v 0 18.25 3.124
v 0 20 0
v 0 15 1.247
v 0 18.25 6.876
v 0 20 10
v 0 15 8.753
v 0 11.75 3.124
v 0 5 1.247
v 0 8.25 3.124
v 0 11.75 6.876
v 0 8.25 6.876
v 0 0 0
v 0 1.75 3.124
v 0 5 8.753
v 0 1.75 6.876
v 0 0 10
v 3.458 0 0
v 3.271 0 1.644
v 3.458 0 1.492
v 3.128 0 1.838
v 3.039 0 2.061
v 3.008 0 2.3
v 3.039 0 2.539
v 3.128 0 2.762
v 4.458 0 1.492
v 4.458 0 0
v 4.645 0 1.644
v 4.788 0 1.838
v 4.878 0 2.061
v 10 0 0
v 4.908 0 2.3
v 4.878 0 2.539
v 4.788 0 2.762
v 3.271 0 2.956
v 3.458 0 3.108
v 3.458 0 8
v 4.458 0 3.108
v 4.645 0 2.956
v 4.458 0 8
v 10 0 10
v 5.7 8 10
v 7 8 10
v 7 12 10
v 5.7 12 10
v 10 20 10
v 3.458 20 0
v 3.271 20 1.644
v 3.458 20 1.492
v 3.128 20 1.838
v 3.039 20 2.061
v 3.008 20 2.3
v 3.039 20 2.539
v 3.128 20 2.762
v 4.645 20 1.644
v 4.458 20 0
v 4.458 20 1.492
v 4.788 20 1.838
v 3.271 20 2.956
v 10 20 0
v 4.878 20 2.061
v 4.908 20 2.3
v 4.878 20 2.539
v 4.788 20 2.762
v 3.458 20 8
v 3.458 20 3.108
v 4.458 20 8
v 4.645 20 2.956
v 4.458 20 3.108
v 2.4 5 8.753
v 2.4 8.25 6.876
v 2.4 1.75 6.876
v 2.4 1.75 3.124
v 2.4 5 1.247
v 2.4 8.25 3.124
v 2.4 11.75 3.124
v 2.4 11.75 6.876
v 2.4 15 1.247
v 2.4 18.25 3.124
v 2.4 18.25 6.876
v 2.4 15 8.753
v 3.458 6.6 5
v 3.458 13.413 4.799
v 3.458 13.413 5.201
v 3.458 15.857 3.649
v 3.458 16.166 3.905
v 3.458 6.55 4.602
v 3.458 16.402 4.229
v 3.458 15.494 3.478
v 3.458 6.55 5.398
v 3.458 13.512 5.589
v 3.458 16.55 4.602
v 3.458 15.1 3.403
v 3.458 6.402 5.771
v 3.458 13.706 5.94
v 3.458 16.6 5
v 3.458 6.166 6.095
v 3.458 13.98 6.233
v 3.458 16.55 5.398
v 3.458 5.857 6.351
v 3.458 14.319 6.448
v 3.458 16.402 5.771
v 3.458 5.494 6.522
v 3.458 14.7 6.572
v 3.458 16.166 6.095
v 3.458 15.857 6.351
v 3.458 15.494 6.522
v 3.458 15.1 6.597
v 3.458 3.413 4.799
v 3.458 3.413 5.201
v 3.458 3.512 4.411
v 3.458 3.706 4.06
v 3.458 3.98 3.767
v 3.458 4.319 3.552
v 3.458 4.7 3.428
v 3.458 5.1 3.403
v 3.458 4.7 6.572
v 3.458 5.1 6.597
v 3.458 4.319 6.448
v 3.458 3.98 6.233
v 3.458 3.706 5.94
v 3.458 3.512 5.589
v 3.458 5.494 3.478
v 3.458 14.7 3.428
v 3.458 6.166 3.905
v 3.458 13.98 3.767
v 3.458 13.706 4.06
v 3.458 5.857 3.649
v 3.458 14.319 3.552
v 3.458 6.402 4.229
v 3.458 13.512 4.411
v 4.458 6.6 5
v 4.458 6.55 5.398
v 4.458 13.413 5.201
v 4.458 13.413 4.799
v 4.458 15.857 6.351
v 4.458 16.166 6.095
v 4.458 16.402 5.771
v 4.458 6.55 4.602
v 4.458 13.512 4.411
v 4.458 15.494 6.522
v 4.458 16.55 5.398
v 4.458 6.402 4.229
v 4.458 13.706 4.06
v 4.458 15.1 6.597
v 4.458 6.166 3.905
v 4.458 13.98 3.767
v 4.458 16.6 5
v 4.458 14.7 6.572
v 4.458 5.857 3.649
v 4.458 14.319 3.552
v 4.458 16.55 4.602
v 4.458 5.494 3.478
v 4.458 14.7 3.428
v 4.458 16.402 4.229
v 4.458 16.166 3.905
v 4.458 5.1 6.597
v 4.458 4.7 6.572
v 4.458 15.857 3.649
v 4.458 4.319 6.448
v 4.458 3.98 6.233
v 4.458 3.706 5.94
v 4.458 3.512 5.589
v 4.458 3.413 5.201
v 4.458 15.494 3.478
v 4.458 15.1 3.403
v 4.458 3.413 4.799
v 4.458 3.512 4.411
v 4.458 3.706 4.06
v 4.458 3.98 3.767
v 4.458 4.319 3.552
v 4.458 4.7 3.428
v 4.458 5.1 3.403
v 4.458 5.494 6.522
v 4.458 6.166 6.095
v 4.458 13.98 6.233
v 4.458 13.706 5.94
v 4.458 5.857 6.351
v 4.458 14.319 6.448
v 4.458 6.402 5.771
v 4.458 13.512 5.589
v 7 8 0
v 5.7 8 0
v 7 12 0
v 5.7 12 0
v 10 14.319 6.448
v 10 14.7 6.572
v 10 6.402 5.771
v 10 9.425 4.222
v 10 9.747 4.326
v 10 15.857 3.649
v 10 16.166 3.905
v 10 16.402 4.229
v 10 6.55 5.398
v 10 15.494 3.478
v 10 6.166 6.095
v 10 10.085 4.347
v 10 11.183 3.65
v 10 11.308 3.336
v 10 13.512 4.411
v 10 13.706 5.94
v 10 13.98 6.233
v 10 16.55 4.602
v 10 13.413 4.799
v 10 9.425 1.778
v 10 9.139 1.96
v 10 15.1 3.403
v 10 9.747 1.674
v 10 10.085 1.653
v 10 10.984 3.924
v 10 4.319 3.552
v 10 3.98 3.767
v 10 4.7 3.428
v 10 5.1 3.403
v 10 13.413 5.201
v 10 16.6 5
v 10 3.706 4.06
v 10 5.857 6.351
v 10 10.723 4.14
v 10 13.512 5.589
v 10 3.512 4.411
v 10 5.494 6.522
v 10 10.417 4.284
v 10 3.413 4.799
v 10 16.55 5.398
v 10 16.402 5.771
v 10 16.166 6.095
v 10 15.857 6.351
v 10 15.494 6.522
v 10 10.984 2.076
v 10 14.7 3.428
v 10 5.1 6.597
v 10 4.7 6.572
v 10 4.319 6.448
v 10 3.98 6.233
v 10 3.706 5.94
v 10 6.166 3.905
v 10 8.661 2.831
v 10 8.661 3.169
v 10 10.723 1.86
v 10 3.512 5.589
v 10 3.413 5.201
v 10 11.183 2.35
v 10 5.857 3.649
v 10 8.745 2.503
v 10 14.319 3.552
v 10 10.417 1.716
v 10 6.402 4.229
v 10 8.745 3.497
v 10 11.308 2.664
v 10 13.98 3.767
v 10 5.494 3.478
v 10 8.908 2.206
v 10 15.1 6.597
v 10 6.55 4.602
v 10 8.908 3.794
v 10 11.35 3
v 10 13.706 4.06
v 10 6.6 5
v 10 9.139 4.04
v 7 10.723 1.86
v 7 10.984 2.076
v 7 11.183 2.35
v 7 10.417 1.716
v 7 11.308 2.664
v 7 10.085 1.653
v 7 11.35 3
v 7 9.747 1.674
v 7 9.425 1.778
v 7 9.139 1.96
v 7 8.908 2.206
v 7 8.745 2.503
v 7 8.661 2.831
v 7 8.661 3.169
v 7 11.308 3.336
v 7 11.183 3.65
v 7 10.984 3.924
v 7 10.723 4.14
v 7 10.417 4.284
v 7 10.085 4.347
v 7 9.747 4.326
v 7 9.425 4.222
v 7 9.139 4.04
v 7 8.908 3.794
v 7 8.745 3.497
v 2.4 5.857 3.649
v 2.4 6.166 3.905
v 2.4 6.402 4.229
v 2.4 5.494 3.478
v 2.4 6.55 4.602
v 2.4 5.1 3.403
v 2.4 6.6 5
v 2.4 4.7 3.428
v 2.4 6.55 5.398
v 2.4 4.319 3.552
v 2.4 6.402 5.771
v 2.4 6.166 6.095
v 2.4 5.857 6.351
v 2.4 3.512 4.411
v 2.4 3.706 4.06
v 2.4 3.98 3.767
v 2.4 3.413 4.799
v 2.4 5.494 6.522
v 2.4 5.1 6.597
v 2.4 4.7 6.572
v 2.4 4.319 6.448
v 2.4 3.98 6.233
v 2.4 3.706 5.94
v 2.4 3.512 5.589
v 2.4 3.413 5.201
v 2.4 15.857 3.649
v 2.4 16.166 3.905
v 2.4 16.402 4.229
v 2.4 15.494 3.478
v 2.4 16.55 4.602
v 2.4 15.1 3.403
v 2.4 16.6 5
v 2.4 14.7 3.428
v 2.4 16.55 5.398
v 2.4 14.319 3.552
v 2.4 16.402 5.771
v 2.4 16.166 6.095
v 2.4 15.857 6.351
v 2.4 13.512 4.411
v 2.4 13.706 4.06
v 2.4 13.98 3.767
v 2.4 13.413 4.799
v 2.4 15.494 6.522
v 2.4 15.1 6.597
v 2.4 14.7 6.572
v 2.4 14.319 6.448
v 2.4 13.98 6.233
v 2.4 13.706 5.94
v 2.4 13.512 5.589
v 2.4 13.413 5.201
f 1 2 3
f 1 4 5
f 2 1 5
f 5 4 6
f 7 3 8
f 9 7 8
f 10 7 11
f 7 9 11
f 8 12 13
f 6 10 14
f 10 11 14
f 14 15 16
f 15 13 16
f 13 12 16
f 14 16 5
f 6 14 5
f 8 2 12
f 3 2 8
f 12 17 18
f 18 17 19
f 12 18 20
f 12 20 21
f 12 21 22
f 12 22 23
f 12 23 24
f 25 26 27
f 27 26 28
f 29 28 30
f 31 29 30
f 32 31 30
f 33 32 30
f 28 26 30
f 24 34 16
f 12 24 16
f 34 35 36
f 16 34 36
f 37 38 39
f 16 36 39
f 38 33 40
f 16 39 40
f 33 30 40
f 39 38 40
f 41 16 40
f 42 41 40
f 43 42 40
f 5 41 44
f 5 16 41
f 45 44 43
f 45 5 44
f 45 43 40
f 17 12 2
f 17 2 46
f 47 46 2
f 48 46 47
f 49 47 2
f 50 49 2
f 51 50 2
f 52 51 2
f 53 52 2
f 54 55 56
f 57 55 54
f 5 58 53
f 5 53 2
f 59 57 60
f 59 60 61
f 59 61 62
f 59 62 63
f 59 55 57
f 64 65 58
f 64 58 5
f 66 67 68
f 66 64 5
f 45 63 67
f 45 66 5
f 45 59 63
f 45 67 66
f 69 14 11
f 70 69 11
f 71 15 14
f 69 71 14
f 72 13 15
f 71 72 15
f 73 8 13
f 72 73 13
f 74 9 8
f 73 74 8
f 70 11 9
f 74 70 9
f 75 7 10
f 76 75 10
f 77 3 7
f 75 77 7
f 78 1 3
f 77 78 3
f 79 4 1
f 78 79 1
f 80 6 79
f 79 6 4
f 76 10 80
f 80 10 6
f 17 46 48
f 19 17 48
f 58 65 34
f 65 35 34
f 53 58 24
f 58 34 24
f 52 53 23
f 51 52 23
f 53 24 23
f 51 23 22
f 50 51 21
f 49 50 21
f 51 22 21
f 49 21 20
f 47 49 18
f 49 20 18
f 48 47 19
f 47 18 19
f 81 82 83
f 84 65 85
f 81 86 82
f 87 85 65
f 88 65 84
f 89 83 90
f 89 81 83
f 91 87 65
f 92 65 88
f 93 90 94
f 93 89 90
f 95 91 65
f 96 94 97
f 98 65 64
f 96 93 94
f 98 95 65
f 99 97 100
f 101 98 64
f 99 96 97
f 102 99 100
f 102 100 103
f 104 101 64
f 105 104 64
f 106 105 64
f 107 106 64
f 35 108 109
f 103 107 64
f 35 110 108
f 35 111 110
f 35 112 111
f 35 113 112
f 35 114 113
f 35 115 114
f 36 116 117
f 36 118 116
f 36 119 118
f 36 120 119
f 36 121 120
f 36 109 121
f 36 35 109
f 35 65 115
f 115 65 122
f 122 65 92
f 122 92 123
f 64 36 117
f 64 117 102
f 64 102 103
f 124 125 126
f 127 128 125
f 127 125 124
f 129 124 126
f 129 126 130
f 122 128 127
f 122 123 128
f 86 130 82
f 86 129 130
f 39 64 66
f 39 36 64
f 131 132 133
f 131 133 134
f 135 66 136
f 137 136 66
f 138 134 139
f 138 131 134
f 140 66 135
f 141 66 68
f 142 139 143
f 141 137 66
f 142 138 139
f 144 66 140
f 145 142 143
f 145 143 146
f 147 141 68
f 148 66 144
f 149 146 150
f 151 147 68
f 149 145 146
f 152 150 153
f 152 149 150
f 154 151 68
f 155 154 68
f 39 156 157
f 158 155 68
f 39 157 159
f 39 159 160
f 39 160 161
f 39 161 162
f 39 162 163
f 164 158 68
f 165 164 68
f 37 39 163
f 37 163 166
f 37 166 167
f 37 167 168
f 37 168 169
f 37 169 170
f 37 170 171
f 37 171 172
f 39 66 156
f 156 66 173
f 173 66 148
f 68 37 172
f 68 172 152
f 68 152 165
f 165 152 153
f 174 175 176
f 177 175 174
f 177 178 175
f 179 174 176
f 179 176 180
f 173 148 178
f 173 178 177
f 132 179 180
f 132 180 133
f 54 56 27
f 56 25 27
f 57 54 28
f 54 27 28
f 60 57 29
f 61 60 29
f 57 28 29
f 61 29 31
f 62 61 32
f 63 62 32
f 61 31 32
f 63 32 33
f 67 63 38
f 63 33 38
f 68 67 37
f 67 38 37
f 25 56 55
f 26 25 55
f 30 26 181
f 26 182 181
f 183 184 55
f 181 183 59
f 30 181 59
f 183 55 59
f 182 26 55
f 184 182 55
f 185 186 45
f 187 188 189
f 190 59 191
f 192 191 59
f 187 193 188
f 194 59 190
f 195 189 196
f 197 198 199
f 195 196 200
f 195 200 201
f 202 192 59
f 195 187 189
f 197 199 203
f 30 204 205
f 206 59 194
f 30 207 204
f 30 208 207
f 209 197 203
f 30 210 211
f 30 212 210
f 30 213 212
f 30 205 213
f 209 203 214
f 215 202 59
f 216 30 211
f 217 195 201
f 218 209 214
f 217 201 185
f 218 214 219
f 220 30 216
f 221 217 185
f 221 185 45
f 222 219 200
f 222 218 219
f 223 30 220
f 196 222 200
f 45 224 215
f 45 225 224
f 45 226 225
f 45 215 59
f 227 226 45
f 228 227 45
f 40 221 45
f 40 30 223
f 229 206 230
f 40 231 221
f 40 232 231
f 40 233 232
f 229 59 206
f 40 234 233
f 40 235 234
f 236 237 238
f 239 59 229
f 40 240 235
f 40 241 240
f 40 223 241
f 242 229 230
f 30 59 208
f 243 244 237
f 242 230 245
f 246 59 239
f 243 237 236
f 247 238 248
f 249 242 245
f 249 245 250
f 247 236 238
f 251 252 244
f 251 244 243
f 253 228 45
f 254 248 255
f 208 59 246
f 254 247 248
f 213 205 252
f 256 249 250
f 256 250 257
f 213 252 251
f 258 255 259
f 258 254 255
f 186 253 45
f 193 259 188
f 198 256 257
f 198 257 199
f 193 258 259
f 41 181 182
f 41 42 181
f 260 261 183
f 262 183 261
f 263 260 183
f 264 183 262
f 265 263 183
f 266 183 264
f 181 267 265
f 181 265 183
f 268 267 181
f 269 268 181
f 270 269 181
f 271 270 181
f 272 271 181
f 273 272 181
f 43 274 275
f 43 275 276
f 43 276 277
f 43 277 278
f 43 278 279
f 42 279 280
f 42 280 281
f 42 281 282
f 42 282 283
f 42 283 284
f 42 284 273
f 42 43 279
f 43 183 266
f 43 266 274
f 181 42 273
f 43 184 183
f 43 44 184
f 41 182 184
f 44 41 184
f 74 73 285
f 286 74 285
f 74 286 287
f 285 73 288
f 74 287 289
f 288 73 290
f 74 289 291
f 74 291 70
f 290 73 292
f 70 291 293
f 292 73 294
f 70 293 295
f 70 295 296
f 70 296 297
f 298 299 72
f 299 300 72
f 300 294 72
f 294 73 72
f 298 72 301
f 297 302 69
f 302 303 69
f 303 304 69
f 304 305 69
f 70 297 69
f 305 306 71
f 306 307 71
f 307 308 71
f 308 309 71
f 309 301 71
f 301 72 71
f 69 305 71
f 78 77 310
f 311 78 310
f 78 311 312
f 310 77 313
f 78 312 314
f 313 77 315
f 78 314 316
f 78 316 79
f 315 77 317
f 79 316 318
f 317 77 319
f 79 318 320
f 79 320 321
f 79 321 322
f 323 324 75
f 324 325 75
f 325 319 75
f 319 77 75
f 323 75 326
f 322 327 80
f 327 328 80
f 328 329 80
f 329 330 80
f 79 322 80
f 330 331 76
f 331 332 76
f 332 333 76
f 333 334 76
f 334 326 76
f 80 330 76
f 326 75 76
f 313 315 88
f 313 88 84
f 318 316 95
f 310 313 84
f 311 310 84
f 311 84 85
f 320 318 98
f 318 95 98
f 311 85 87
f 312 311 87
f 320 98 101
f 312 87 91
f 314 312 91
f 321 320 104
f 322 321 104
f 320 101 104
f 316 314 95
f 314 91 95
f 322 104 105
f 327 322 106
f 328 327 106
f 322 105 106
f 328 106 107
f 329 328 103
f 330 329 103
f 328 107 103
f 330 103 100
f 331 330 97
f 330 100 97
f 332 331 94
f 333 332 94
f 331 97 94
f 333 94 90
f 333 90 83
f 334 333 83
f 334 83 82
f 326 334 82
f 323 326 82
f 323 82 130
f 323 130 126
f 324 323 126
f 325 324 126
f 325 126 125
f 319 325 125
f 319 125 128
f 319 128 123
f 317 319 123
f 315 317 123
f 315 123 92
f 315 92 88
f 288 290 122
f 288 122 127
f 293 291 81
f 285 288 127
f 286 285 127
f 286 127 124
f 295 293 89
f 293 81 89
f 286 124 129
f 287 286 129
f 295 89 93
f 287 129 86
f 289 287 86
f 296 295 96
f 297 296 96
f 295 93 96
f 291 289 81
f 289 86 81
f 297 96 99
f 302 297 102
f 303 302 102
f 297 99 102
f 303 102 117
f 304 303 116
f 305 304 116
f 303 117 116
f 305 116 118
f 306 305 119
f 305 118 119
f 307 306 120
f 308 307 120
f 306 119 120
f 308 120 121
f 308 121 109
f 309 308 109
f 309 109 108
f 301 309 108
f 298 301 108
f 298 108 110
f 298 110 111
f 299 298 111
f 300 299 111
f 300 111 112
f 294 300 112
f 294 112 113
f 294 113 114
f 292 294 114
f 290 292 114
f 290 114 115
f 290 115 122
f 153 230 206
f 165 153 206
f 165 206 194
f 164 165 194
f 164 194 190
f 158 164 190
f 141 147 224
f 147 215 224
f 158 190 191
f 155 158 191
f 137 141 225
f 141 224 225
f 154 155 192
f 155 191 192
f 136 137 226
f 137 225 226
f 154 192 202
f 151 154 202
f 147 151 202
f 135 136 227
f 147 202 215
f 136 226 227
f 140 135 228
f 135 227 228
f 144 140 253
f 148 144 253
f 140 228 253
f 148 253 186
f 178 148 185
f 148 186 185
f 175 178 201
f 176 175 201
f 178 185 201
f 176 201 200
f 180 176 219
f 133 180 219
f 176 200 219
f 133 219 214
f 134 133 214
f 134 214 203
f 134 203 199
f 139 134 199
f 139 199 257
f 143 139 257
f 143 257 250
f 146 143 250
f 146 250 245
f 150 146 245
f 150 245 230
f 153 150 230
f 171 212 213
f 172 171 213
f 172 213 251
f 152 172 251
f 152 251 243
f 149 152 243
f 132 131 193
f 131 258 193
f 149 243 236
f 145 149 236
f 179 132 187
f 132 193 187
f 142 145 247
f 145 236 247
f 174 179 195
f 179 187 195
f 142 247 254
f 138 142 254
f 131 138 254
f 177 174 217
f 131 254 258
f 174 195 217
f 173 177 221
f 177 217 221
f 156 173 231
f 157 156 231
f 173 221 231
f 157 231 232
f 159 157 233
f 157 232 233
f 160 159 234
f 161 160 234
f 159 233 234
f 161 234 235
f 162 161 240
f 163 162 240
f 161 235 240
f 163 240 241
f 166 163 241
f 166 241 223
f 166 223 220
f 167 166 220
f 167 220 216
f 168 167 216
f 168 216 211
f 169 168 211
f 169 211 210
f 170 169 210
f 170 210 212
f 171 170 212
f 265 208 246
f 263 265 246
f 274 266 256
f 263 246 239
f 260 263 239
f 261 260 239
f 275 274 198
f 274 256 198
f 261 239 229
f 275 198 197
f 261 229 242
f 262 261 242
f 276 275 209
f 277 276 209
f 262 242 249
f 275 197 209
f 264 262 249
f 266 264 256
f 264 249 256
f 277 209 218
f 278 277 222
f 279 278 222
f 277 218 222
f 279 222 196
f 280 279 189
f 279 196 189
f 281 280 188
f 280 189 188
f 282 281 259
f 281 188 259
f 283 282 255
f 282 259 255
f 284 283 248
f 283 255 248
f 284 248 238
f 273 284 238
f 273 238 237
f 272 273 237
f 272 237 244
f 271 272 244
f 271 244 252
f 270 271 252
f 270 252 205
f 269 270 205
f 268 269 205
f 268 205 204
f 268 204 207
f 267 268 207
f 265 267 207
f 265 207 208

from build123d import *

# Parameters (mm, degrees)
BOX_W           = 10
BOX_H           = 20
BOX_DEPTH       = 10
POCKET_DEPTH    = 20.001
POCKET001_DEPTH = 2.4
SKETCH002_R     = 1.6
POCKET002_DEPTH = 10.001
SKETCH003_W     = 1.3
SKETCH003_H     = 4
POCKET003_DEPTH = 10.001
SKETCH004_R     = 1.35
POCKET004_DEPTH = 3


with BuildPart() as part:
    # Box → Box (new body)
    with BuildSketch(Plane.XY):
        with Locations((5, 10)):
            Rectangle(BOX_W, BOX_H)
    extrude(amount=BOX_DEPTH)

    # Sketch → Pocket (cut, through all)
    with BuildSketch(Plane.XZ):
        with BuildLine():
            Line((3.458295, 0), (3.458295, 1.492225))
            ThreePointArc((3.458295, 3.107775), (3.008295, 2.3), (3.458295, 1.492225))
            Line((3.458295, 3.107775), (3.458295, 8))
            Line((3.458295, 8), (4.458295, 8))
            Line((4.458295, 8), (4.458295, 3.107775))
            ThreePointArc((4.458295, 1.492225), (4.908295, 2.3), (4.458295, 3.107775))
            Line((4.458295, 1.492225), (4.458295, 0))
            Line((3.458295, 0), (4.458295, 0))
        make_face()
    extrude(amount=-POCKET_DEPTH, mode=Mode.SUBTRACT)

    # Sketch001 → Pocket001 (cut)
    with BuildSketch(Plane(origin=(0, 0, 0), x_dir=(0, -1, 0), z_dir=(-1, 0, 0))):
        Polygon((-8.25, 6.876388), (-8.25, 3.123612), (-5, 1.247223), (-1.75, 3.123612), (-1.75, 6.876388), (-5, 8.752777), align=None)
        Polygon((-18.25, 6.876388), (-18.25, 3.123612), (-15, 1.247223), (-11.75, 3.123612), (-11.75, 6.876388), (-15, 8.752777), align=None)
    extrude(amount=-POCKET001_DEPTH, mode=Mode.SUBTRACT)

    # Sketch002 → Pocket002 (cut, through all)
    with BuildSketch(Plane.YZ.offset(10)):
        with Locations((5, 5)):
            Circle(SKETCH002_R)
        with Locations((15, 5)):
            Circle(SKETCH002_R)
    extrude(amount=-POCKET002_DEPTH, mode=Mode.SUBTRACT)

    # Sketch003 → Pocket003 (cut, through all)
    with BuildSketch(Plane.XY.offset(10)):
        with Locations((6.35, 10)):
            Rectangle(SKETCH003_W, SKETCH003_H)
    extrude(amount=-POCKET003_DEPTH, mode=Mode.SUBTRACT)

    # Sketch004 → Pocket004 (cut)
    with BuildSketch(Plane.YZ.offset(10)):
        with Locations((10, 3)):
            Circle(SKETCH004_R)
    extrude(amount=-POCKET004_DEPTH, mode=Mode.SUBTRACT)


solid = part.part
